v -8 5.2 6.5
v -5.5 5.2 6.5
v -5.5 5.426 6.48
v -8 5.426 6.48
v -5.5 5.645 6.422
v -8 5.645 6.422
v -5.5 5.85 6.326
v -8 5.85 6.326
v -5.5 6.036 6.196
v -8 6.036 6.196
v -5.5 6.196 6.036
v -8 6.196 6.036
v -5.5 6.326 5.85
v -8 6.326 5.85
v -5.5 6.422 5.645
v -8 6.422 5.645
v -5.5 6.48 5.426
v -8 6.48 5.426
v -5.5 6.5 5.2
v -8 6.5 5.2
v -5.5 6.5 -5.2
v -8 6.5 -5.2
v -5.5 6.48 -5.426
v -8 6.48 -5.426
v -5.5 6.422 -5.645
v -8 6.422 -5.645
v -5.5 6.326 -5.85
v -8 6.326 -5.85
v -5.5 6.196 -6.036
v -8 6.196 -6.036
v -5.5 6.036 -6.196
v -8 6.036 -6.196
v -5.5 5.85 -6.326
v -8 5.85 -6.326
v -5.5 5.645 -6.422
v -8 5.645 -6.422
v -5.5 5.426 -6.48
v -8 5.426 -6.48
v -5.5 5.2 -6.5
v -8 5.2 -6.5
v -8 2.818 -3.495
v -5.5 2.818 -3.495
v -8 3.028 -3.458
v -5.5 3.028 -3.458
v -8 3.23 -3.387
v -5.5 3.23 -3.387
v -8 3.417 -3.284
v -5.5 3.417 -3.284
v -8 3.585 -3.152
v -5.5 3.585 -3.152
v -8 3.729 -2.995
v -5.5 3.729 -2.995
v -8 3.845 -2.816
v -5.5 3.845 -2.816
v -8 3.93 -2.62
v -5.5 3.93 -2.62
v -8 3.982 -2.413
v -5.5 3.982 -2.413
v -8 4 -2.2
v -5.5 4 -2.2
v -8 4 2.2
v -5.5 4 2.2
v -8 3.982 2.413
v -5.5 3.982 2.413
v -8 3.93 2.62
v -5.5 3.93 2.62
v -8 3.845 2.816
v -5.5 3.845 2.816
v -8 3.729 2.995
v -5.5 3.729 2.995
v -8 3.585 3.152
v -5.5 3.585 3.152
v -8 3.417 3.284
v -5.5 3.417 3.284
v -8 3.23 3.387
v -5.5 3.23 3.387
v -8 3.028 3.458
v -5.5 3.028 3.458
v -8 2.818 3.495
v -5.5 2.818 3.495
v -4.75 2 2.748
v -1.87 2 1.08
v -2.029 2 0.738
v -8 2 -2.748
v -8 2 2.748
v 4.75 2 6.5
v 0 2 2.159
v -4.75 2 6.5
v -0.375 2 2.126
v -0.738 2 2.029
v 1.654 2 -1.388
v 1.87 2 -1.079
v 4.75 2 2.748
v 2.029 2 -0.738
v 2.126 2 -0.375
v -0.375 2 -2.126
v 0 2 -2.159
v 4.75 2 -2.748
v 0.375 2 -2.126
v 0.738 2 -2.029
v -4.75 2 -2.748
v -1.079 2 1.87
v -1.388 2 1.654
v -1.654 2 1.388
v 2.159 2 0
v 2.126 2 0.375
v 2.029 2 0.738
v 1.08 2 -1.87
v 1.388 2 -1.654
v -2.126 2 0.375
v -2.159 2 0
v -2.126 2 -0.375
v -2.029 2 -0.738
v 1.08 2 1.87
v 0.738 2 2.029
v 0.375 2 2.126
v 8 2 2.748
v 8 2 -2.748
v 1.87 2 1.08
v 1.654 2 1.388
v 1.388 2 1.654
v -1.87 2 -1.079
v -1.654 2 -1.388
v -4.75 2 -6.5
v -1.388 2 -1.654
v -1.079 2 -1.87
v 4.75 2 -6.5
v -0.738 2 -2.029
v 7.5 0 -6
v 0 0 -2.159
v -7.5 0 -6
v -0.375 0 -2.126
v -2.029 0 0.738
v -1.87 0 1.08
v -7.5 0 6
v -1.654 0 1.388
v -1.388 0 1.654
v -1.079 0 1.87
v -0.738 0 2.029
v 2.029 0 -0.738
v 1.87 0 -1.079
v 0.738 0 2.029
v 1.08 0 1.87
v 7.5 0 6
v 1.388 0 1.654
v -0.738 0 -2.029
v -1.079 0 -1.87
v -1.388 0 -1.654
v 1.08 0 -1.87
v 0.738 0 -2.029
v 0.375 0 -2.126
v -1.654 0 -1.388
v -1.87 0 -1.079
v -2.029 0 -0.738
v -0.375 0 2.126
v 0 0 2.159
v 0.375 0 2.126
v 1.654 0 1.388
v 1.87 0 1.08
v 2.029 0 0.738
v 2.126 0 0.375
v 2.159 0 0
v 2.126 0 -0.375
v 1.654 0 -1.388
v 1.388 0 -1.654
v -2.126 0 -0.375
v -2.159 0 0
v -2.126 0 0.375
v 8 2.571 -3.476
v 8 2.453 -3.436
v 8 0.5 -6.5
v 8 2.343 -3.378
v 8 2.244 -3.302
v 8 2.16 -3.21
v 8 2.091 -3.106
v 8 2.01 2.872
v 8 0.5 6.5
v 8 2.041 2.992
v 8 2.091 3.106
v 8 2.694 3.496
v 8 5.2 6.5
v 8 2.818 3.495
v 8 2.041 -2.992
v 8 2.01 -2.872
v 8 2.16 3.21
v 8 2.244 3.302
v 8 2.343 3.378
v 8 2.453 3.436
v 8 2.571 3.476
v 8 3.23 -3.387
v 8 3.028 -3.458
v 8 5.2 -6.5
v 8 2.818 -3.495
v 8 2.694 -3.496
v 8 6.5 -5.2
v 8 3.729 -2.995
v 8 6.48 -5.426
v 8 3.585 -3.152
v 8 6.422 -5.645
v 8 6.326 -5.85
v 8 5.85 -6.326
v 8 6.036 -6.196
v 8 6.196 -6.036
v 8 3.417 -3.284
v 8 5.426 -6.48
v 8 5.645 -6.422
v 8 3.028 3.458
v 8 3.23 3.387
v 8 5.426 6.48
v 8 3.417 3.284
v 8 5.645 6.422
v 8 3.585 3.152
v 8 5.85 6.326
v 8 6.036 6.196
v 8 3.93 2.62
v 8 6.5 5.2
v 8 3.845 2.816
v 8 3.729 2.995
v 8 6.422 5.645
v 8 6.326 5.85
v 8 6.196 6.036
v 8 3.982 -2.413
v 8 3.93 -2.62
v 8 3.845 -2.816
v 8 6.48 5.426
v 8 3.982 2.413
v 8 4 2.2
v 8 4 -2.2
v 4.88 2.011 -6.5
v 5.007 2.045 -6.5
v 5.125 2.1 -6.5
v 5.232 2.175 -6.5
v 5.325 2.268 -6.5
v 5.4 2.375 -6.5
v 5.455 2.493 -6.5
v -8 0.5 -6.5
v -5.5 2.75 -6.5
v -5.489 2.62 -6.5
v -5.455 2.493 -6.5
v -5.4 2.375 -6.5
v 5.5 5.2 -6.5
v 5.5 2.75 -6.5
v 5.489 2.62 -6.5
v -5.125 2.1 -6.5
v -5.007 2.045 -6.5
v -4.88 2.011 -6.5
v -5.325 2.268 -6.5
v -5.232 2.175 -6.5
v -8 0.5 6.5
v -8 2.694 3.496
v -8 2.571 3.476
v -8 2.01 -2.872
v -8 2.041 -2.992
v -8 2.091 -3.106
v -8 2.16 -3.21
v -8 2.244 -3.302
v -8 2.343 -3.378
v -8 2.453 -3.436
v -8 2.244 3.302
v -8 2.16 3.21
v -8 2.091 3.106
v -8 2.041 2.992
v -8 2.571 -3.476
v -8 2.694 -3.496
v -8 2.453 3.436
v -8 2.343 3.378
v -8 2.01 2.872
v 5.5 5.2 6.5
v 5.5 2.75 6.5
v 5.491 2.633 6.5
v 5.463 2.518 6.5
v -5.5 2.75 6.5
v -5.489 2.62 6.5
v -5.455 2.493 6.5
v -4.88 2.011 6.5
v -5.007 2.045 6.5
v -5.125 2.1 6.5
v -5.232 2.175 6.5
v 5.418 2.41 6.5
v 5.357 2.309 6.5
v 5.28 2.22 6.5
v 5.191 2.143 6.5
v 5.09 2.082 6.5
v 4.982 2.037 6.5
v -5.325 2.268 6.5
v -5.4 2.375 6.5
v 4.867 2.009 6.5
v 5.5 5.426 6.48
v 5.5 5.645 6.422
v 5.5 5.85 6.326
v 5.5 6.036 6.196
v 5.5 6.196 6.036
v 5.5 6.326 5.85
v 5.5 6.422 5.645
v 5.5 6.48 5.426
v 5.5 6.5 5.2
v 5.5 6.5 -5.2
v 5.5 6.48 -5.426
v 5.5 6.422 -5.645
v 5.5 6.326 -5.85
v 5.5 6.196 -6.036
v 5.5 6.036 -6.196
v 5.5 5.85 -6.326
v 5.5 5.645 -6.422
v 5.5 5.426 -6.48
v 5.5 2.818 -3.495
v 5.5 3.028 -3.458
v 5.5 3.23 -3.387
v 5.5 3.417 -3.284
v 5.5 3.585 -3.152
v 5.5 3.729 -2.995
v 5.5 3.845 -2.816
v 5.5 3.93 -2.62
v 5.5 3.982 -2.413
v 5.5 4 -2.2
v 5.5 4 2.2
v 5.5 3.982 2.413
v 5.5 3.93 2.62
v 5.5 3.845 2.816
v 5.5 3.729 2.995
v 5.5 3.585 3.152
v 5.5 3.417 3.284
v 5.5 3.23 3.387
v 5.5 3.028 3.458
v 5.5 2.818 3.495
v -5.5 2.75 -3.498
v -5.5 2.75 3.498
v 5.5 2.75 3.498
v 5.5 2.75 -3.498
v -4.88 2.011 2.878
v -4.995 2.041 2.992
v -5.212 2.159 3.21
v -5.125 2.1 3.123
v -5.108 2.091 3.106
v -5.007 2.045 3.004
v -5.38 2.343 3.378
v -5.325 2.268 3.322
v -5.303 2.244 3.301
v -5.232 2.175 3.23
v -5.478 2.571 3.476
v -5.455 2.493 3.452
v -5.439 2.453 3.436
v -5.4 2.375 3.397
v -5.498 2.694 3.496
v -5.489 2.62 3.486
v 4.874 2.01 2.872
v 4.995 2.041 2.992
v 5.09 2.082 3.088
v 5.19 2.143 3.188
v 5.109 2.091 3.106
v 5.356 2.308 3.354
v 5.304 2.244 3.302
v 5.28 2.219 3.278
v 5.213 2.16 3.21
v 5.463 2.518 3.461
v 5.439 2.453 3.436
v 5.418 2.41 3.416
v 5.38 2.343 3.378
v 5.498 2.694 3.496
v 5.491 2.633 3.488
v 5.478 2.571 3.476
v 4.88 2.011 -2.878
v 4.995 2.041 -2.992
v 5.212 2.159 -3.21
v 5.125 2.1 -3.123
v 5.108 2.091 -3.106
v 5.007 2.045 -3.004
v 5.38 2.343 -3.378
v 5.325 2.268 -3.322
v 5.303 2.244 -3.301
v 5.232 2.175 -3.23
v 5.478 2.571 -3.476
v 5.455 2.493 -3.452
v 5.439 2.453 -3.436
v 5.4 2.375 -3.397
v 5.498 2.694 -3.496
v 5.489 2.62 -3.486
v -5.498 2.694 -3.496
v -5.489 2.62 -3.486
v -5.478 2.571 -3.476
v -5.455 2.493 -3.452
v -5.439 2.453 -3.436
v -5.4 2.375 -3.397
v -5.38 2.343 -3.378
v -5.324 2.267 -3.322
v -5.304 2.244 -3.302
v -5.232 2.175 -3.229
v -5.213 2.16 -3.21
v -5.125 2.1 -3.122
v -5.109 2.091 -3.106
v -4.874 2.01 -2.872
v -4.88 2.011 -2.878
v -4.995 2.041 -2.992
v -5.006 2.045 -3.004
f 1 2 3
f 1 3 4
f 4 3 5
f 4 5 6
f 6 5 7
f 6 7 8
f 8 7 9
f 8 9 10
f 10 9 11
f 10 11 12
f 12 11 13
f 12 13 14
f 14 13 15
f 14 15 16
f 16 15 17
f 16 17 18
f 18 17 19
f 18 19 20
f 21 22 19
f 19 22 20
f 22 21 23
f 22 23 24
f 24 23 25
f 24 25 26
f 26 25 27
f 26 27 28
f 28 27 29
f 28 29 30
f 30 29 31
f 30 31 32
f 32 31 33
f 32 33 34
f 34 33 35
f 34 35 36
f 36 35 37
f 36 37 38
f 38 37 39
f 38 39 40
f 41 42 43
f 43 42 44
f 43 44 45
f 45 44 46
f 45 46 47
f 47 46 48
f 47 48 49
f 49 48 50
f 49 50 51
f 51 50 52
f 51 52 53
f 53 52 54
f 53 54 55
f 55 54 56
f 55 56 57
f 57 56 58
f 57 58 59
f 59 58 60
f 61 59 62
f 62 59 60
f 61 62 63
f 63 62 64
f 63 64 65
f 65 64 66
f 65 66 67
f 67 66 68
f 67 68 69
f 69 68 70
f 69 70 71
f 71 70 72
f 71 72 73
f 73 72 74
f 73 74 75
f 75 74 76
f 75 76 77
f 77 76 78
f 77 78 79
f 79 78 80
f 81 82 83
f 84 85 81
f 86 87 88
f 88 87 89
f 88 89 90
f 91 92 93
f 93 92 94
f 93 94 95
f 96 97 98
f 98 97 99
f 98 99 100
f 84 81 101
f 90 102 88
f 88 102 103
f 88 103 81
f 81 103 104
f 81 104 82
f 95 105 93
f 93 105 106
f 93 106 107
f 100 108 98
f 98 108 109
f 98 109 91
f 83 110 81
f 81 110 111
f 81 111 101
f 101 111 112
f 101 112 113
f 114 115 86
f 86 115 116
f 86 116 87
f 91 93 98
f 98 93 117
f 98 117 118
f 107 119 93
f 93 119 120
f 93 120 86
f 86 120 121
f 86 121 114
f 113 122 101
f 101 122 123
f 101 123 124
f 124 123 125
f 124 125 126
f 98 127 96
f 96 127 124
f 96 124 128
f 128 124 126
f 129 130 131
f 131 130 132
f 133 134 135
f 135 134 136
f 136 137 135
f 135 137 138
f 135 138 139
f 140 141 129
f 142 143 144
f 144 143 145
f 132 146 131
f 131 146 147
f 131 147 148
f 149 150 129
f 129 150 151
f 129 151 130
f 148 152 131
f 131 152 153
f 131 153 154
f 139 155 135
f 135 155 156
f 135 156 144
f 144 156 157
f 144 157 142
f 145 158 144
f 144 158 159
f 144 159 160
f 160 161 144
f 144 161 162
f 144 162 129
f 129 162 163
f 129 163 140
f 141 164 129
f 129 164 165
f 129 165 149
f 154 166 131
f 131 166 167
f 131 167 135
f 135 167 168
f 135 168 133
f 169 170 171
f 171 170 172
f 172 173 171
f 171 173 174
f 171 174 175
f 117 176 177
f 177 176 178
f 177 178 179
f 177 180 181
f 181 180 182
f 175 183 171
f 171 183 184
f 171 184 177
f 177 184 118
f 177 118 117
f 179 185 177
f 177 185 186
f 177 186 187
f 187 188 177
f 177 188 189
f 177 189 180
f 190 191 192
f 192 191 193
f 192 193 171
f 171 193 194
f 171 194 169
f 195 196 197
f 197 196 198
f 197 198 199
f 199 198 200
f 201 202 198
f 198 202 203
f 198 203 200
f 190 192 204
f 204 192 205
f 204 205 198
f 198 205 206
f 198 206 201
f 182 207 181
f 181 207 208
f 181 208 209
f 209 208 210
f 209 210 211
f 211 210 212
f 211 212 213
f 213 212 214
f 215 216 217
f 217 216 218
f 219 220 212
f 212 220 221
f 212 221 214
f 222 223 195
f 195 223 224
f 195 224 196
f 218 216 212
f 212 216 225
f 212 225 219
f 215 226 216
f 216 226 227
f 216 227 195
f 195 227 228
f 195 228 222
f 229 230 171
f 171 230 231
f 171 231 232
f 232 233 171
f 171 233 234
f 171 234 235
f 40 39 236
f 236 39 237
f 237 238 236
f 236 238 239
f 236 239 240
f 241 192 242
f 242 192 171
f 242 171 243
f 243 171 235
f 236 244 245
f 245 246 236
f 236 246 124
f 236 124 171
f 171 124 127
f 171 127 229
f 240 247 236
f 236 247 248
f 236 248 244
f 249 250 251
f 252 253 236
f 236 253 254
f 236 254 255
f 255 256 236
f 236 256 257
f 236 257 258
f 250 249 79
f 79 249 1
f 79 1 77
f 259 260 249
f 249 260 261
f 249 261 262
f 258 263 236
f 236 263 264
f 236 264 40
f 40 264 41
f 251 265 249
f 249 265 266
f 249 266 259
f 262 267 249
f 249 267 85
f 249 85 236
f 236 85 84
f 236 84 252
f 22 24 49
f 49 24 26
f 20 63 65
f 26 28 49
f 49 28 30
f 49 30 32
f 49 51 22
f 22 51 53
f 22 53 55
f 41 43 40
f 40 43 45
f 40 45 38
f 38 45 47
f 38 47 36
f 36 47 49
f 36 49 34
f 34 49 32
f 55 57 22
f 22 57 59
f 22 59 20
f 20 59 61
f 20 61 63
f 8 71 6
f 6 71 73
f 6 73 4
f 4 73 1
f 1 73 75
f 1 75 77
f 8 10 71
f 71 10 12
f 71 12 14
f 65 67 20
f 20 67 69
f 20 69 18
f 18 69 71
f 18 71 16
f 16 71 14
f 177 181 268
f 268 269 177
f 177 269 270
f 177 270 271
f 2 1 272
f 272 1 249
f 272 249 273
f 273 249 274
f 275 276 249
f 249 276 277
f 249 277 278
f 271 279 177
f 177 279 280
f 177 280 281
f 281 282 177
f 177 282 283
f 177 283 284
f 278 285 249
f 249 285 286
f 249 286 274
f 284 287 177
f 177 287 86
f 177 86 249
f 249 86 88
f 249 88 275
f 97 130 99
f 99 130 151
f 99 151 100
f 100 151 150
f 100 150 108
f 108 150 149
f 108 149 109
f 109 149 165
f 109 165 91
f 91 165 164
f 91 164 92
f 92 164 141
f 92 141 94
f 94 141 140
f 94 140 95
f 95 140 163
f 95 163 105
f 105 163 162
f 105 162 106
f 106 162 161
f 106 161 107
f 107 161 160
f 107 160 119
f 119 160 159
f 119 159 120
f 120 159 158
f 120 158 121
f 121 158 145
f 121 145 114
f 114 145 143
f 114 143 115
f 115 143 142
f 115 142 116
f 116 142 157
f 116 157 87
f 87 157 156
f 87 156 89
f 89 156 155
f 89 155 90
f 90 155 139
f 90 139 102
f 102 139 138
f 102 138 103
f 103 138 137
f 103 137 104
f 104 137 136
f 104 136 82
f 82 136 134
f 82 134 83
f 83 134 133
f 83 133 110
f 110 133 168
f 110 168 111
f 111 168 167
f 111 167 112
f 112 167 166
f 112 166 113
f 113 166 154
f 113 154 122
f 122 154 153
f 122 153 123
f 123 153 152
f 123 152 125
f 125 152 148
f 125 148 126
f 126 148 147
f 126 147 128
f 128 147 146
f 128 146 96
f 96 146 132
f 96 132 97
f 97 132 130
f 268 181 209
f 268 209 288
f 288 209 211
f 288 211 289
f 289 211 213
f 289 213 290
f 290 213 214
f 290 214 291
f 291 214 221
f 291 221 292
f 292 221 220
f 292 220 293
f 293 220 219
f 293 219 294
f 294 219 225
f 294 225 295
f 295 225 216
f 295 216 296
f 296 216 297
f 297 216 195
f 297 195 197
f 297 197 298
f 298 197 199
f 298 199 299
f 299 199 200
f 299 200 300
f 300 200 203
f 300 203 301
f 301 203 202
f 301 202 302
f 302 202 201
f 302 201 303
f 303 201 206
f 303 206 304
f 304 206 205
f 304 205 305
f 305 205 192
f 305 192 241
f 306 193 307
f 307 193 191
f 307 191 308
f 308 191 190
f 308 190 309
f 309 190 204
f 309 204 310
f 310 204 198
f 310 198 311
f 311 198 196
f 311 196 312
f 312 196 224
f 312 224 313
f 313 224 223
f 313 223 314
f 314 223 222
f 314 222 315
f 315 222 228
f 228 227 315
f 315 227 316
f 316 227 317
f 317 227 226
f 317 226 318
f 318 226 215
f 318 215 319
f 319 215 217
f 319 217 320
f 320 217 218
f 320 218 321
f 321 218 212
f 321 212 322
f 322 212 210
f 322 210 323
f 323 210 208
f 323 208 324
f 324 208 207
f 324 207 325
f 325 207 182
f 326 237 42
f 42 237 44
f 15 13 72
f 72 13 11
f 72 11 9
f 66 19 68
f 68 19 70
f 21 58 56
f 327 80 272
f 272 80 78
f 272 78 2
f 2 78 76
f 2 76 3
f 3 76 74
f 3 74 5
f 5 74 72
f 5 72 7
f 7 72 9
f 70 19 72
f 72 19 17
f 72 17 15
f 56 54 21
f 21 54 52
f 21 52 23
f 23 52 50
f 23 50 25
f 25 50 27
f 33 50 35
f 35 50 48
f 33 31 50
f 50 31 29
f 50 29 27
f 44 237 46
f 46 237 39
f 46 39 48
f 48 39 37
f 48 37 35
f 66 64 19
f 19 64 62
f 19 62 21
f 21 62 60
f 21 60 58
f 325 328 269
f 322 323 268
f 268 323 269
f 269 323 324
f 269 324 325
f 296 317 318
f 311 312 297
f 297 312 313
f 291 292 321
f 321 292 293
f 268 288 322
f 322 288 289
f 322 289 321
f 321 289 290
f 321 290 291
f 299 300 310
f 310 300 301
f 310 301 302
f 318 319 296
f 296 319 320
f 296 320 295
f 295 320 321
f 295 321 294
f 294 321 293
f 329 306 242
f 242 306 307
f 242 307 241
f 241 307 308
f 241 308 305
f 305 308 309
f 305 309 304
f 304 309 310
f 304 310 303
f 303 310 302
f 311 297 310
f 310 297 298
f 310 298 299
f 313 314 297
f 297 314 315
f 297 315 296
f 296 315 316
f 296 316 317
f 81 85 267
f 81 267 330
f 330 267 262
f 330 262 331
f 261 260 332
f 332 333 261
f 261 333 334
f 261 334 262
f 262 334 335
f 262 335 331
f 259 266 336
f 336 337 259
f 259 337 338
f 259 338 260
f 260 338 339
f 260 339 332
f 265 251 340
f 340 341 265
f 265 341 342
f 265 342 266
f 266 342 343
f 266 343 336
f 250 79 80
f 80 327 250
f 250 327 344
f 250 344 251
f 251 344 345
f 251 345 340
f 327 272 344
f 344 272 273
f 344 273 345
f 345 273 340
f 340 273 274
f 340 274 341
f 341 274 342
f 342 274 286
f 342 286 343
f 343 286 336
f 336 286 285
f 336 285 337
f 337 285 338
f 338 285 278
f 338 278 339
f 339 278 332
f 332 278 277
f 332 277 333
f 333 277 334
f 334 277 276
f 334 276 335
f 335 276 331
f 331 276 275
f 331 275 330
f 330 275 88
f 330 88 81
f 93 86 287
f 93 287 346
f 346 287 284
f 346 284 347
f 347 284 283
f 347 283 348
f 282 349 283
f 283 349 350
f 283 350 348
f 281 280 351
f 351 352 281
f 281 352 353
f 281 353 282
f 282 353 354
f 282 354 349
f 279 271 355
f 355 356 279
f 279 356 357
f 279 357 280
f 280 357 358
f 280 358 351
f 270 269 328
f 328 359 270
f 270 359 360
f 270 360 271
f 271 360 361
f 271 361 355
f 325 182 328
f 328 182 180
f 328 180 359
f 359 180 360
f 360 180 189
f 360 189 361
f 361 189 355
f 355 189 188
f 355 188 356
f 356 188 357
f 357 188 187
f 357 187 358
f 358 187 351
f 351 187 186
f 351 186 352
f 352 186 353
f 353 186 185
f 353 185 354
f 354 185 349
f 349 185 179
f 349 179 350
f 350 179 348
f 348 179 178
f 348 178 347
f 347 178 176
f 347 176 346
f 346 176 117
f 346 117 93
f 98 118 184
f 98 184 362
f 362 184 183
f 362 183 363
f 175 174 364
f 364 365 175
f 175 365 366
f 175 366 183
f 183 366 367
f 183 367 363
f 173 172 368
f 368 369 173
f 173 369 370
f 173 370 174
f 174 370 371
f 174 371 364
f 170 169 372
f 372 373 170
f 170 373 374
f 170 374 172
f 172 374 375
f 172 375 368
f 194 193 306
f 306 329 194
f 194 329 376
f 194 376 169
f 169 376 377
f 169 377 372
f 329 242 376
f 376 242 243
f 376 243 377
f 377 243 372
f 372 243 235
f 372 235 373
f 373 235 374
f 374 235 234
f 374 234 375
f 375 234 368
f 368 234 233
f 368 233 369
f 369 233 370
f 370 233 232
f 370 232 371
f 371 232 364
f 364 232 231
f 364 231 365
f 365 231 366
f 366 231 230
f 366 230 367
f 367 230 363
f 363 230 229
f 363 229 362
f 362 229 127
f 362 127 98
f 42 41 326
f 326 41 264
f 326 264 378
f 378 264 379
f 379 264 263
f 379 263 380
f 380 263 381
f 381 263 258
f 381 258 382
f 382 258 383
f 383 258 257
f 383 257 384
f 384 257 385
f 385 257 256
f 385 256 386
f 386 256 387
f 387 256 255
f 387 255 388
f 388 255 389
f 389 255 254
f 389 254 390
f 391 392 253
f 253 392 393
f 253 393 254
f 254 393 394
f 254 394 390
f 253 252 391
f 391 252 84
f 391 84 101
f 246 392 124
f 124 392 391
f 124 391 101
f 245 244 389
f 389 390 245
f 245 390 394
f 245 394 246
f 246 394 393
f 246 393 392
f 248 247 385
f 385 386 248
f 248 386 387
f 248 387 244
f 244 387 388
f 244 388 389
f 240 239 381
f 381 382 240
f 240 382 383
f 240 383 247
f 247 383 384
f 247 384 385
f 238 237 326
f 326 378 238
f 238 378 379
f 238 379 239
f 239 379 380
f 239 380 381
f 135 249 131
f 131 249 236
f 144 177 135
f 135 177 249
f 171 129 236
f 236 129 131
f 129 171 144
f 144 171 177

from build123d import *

# Parameters (mm, degrees)
SKETCH1_W               = 16
SKETCH1_H               = 13
SKETCH1_R               = 2.159
BOSS_EXTRUDE1_DEPTH     = 2
BOSS_EXTRUDE2_DEPTH     = 16
CUT_EXTRUDE1_DEPTH      = 17.590660023
CUT_EXTRUDE1_DEPTH_BACK = 17.590660023
SKETCH4_W               = 11
SKETCH4_H               = 5
FILLET1_R               = 0.75
CHAMFER1_SIZE           = 0.5


with BuildPart() as part:
    # Sketch1 → Boss-Extrude1 (new body)
    with BuildSketch(Plane(origin=(0, 0, 0), x_dir=(1, 0, 0), z_dir=(0, 1, 0))):
        Rectangle(SKETCH1_W, SKETCH1_H)
        with Locations(Location((0, 0, 0), (0, 0, 270))):
            Circle(SKETCH1_R, mode=Mode.SUBTRACT)
    extrude(amount=BOSS_EXTRUDE1_DEPTH)

    # Sketch2 → Boss-Extrude2 (add)
    with BuildSketch(Plane(origin=(8, 0, 0), x_dir=(0, 0, -1), z_dir=(1, 0, 0))):
        with BuildLine():
            Line((-6.5, 5.2), (-6.5, 2))
            Line((-6.5, 2), (-3.5, 2))
            Line((-3.5, 2), (-3.5, 2.7))
            ThreePointArc((-3.5, 2.7), (-3.119238816, 3.619238816), (-2.2, 4))
            Line((-2.2, 4), (2.2, 4))
            ThreePointArc((2.2, 4), (3.119238816, 3.619238816), (3.5, 2.7))
            Line((3.5, 2.7), (3.5, 2))
            Line((3.5, 2), (6.5, 2))
            Line((6.5, 2), (6.5, 5.2))
            ThreePointArc((6.5, 5.2), (6.119238816, 6.119238816), (5.2, 6.5))
            Line((5.2, 6.5), (-5.2, 6.5))
            ThreePointArc((-5.2, 6.5), (-6.119238816, 6.119238816), (-6.5, 5.2))
        make_face()
    extrude(amount=-BOSS_EXTRUDE2_DEPTH)

    # Sketch4 → Cut-Extrude1 (cut, two sides: drawn at the far end of the back side and taken through both)
    with BuildSketch(Plane.XY.offset(6.5).offset(-CUT_EXTRUDE1_DEPTH_BACK)):
        with Locations((0, 4.5)):
            Rectangle(SKETCH4_W, SKETCH4_H)
    extrude(amount=CUT_EXTRUDE1_DEPTH + CUT_EXTRUDE1_DEPTH_BACK, mode=Mode.SUBTRACT)

    # Fillet1
    # the kernel refuses this fillet: 0.75 mm, written as the material it adds along each edge
    with BuildSketch(Plane(origin=(-5.5, 2, 3.5), x_dir=(1, 0, 0), z_dir=(0, 0, 1)), Plane(origin=(-5.5, 2, -6.5), x_dir=(1, 0, 0), z_dir=(0, 0, 1))) as fillet1_piece_1:
        with BuildLine():
            CenterArc((FILLET1_R, FILLET1_R), FILLET1_R, 180, 90)
            Line((0, FILLET1_R), (-FILLET1_R * 0.02, FILLET1_R))
            Line((-FILLET1_R * 0.02, FILLET1_R), (-FILLET1_R * 0.02, -FILLET1_R * 0.02))
            Line((-FILLET1_R * 0.02, -FILLET1_R * 0.02), (FILLET1_R, -FILLET1_R * 0.02))
            Line((FILLET1_R, -FILLET1_R * 0.02), (FILLET1_R, 0))
        make_face()
    extrude(amount=3)
    with BuildSketch(Plane(origin=(-5.5, 2, 3.5), x_dir=(0, 0, -1), z_dir=(-1, 0, 0)), Plane(origin=(8, 2, 3.5), x_dir=(0, 0, -1), z_dir=(-1, 0, 0))) as fillet1_piece_2:
        with BuildLine():
            CenterArc((0.752277442, -0.75), FILLET1_R, 90, 95.21590857)
            Line((0.005383046, -0.818181818), (-0.069306394, -0.825))
            ThreePointArc((-0.069306394, -0.825), (-0.075, -0.7), (-0.075, 0))
            Line((-0.075, 0), (0, 0.075))
            Line((0, 0.075), (0.752277442, 0.075))
            Line((0.752277442, 0.075), (0.752277442, 0))
        make_face()
    extrude(amount=2.5)
    with BuildSketch(Plane(origin=(5.5, 2, 6.5), x_dir=(0, 1, 0), z_dir=(0, 0, -1)), Plane(origin=(5.5, 2, -3.5), x_dir=(0, 1, 0), z_dir=(0, 0, -1))) as fillet1_piece_3:
        with BuildLine():
            CenterArc((FILLET1_R, -FILLET1_R), FILLET1_R, 90, 90)
            Line((0, -FILLET1_R), (-FILLET1_R * 0.02, -FILLET1_R))
            Line((-FILLET1_R * 0.02, -FILLET1_R), (-FILLET1_R * 0.02, FILLET1_R * 0.02))
            Line((-FILLET1_R * 0.02, FILLET1_R * 0.02), (FILLET1_R, FILLET1_R * 0.02))
            Line((FILLET1_R, FILLET1_R * 0.02), (FILLET1_R, 0))
        make_face()
    extrude(amount=3)
    with BuildSketch(Plane(origin=(8, 2, -3.5), x_dir=(0, 0, 1), z_dir=(-1, 0, 0)), Plane(origin=(-5.5, 2, -3.5), x_dir=(0, 0, 1), z_dir=(-1, 0, 0))) as fillet1_piece_4:
        with BuildLine():
            CenterArc((0.752277442, 0.75), FILLET1_R, 174.78409143, 95.21590857)
            Line((0.005383046, 0.818181818), (-0.069306394, 0.825))
            ThreePointArc((-0.069306394, 0.825), (-0.075, 0.7), (-0.075, 0))
            Line((-0.075, 0), (0, -0.075))
            Line((0, -0.075), (0.752277442, -0.075))
            Line((0.752277442, -0.075), (0.752277442, 0))
        make_face()
    extrude(amount=2.5)
    with BuildSketch(Plane(origin=(-5.5, 2, 1.625), x_dir=(1, 0, 0), z_dir=(0, 0, 1))) as fillet1_piece_5a_section:
        with BuildLine():
            CenterArc((FILLET1_R, FILLET1_R), FILLET1_R, 180, 90)
            Line((0, FILLET1_R), (-FILLET1_R * 0.02, FILLET1_R))
            Line((-FILLET1_R * 0.02, FILLET1_R), (-FILLET1_R * 0.02, -FILLET1_R * 0.02))
            Line((-FILLET1_R * 0.02, -FILLET1_R * 0.02), (FILLET1_R, -FILLET1_R * 0.02))
            Line((FILLET1_R, -FILLET1_R * 0.02), (FILLET1_R, 0))
        make_face()
    fillet1_piece_5a = extrude(amount=4.875, mode=Mode.PRIVATE)
    fillet1_piece_5a = split(fillet1_piece_5a, bisect_by=Plane(origin=(-5.330203664, 2.169796336, 3.5), z_dir=(0, 0, -1)), keep=Keep.TOP, mode=Mode.PRIVATE)
    with BuildSketch(Plane(origin=(-3.454501184, 2, 3.5), x_dir=(0, 0, -1), z_dir=(-1, 0, 0))) as fillet1_piece_5b_section:
        with BuildLine():
            CenterArc((0.752277442, -0.75), FILLET1_R, 90, 95.21590857)
            Line((0.005383046, -0.818181818), (-0.069306394, -0.825))
            ThreePointArc((-0.069306394, -0.825), (-0.075, -0.7), (-0.075, 0))
            Line((-0.075, 0), (0, 0.075))
            Line((0, 0.075), (0.752277442, 0.075))
            Line((0.752277442, 0.075), (0.752277442, 0))
        make_face()
    fillet1_piece_5b = extrude(amount=4.545498816, mode=Mode.PRIVATE)
    fillet1_piece_5b = split(fillet1_piece_5b, bisect_by=Plane(origin=(-5.5, 2.182819777, 3.341220423), z_dir=(1, 0, 0)), keep=Keep.TOP, mode=Mode.PRIVATE)
    fillet1_piece_5 = fillet1_piece_5a & fillet1_piece_5b
    add(fillet1_piece_5)
    with BuildSketch(Plane(origin=(5.5, 2, 6.5), x_dir=(0, 1, 0), z_dir=(0, 0, -1))) as fillet1_piece_6a_section:
        with BuildLine():
            CenterArc((FILLET1_R, -FILLET1_R), FILLET1_R, 90, 90)
            Line((0, -FILLET1_R), (-FILLET1_R * 0.02, -FILLET1_R))
            Line((-FILLET1_R * 0.02, -FILLET1_R), (-FILLET1_R * 0.02, FILLET1_R * 0.02))
            Line((-FILLET1_R * 0.02, FILLET1_R * 0.02), (FILLET1_R, FILLET1_R * 0.02))
            Line((FILLET1_R, FILLET1_R * 0.02), (FILLET1_R, 0))
        make_face()
    fillet1_piece_6a = extrude(amount=4.875, mode=Mode.PRIVATE)
    fillet1_piece_6a = split(fillet1_piece_6a, bisect_by=Plane(origin=(5.330203664, 2.169796336, 3.5), z_dir=(0, 0, -1)), keep=Keep.TOP, mode=Mode.PRIVATE)
    with BuildSketch(Plane(origin=(8, 2, 3.5), x_dir=(0, 0, -1), z_dir=(-1, 0, 0))) as fillet1_piece_6b_section:
        with BuildLine():
            CenterArc((0.752277442, -0.75), FILLET1_R, 90, 95.21590857)
            Line((0.005383046, -0.818181818), (-0.069306394, -0.825))
            ThreePointArc((-0.069306394, -0.825), (-0.075, -0.7), (-0.075, 0))
            Line((-0.075, 0), (0, 0.075))
            Line((0, 0.075), (0.752277442, 0.075))
            Line((0.752277442, 0.075), (0.752277442, 0))
        make_face()
    fillet1_piece_6b = extrude(amount=4.545498816, mode=Mode.PRIVATE)
    fillet1_piece_6b = split(fillet1_piece_6b, bisect_by=Plane(origin=(5.5, 2.182819777, 3.341220423), z_dir=(-1, 0, 0)), keep=Keep.TOP, mode=Mode.PRIVATE)
    fillet1_piece_6 = fillet1_piece_6a & fillet1_piece_6b
    add(fillet1_piece_6)
    with BuildSketch(Plane(origin=(5.5, 2, -1.625), x_dir=(0, 1, 0), z_dir=(0, 0, -1))) as fillet1_piece_7a_section:
        with BuildLine():
            CenterArc((FILLET1_R, -FILLET1_R), FILLET1_R, 90, 90)
            Line((0, -FILLET1_R), (-FILLET1_R * 0.02, -FILLET1_R))
            Line((-FILLET1_R * 0.02, -FILLET1_R), (-FILLET1_R * 0.02, FILLET1_R * 0.02))
            Line((-FILLET1_R * 0.02, FILLET1_R * 0.02), (FILLET1_R, FILLET1_R * 0.02))
            Line((FILLET1_R, FILLET1_R * 0.02), (FILLET1_R, 0))
        make_face()
    fillet1_piece_7a = extrude(amount=4.875, mode=Mode.PRIVATE)
    fillet1_piece_7a = split(fillet1_piece_7a, bisect_by=Plane(origin=(5.330203664, 2.169796336, -3.5), z_dir=(0, 0, 1)), keep=Keep.TOP, mode=Mode.PRIVATE)
    with BuildSketch(Plane(origin=(8, 2, -3.5), x_dir=(0, 0, 1), z_dir=(-1, 0, 0))) as fillet1_piece_7b_section:
        with BuildLine():
            CenterArc((0.752277442, 0.75), FILLET1_R, 174.78409143, 95.21590857)
            Line((0.005383046, 0.818181818), (-0.069306394, 0.825))
            ThreePointArc((-0.069306394, 0.825), (-0.075, 0.7), (-0.075, 0))
            Line((-0.075, 0), (0, -0.075))
            Line((0, -0.075), (0.752277442, -0.075))
            Line((0.752277442, -0.075), (0.752277442, 0))
        make_face()
    fillet1_piece_7b = extrude(amount=4.545498816, mode=Mode.PRIVATE)
    fillet1_piece_7b = split(fillet1_piece_7b, bisect_by=Plane(origin=(5.5, 2.182819777, -3.341220423), z_dir=(-1, 0, 0)), keep=Keep.TOP, mode=Mode.PRIVATE)
    fillet1_piece_7 = fillet1_piece_7a & fillet1_piece_7b
    add(fillet1_piece_7)
    with BuildSketch(Plane(origin=(-3.454501184, 2, -3.5), x_dir=(0, 0, 1), z_dir=(-1, 0, 0))) as fillet1_piece_8a_section:
        with BuildLine():
            CenterArc((0.752277442, 0.75), FILLET1_R, 174.78409143, 95.21590857)
            Line((0.005383046, 0.818181818), (-0.069306394, 0.825))
            ThreePointArc((-0.069306394, 0.825), (-0.075, 0.7), (-0.075, 0))
            Line((-0.075, 0), (0, -0.075))
            Line((0, -0.075), (0.752277442, -0.075))
            Line((0.752277442, -0.075), (0.752277442, 0))
        make_face()
    fillet1_piece_8a = extrude(amount=4.545498816, mode=Mode.PRIVATE)
    fillet1_piece_8a = split(fillet1_piece_8a, bisect_by=Plane(origin=(-5.5, 2.182819777, -3.341220423), z_dir=(1, 0, 0)), keep=Keep.TOP, mode=Mode.PRIVATE)
    with BuildSketch(Plane(origin=(-5.5, 2, -6.5), x_dir=(1, 0, 0), z_dir=(0, 0, 1))) as fillet1_piece_8b_section:
        with BuildLine():
            CenterArc((FILLET1_R, FILLET1_R), FILLET1_R, 180, 90)
            Line((0, FILLET1_R), (-FILLET1_R * 0.02, FILLET1_R))
            Line((-FILLET1_R * 0.02, FILLET1_R), (-FILLET1_R * 0.02, -FILLET1_R * 0.02))
            Line((-FILLET1_R * 0.02, -FILLET1_R * 0.02), (FILLET1_R, -FILLET1_R * 0.02))
            Line((FILLET1_R, -FILLET1_R * 0.02), (FILLET1_R, 0))
        make_face()
    fillet1_piece_8b = extrude(amount=4.875, mode=Mode.PRIVATE)
    fillet1_piece_8b = split(fillet1_piece_8b, bisect_by=Plane(origin=(-5.330203664, 2.169796336, -3.5), z_dir=(0, 0, 1)), keep=Keep.TOP, mode=Mode.PRIVATE)
    fillet1_piece_8 = fillet1_piece_8a & fillet1_piece_8b
    add(fillet1_piece_8)

    # Chamfer1
    chamfer1_edges = [part.edges().sort_by_distance(p)[0] for p in [
        (0, 0, 6.5),
        (-8, 0, 0),
        (0, 0, -6.5),
        (8, 0, 0),
    ]]
    chamfer(chamfer1_edges, length=CHAMFER1_SIZE)


solid = part.part
